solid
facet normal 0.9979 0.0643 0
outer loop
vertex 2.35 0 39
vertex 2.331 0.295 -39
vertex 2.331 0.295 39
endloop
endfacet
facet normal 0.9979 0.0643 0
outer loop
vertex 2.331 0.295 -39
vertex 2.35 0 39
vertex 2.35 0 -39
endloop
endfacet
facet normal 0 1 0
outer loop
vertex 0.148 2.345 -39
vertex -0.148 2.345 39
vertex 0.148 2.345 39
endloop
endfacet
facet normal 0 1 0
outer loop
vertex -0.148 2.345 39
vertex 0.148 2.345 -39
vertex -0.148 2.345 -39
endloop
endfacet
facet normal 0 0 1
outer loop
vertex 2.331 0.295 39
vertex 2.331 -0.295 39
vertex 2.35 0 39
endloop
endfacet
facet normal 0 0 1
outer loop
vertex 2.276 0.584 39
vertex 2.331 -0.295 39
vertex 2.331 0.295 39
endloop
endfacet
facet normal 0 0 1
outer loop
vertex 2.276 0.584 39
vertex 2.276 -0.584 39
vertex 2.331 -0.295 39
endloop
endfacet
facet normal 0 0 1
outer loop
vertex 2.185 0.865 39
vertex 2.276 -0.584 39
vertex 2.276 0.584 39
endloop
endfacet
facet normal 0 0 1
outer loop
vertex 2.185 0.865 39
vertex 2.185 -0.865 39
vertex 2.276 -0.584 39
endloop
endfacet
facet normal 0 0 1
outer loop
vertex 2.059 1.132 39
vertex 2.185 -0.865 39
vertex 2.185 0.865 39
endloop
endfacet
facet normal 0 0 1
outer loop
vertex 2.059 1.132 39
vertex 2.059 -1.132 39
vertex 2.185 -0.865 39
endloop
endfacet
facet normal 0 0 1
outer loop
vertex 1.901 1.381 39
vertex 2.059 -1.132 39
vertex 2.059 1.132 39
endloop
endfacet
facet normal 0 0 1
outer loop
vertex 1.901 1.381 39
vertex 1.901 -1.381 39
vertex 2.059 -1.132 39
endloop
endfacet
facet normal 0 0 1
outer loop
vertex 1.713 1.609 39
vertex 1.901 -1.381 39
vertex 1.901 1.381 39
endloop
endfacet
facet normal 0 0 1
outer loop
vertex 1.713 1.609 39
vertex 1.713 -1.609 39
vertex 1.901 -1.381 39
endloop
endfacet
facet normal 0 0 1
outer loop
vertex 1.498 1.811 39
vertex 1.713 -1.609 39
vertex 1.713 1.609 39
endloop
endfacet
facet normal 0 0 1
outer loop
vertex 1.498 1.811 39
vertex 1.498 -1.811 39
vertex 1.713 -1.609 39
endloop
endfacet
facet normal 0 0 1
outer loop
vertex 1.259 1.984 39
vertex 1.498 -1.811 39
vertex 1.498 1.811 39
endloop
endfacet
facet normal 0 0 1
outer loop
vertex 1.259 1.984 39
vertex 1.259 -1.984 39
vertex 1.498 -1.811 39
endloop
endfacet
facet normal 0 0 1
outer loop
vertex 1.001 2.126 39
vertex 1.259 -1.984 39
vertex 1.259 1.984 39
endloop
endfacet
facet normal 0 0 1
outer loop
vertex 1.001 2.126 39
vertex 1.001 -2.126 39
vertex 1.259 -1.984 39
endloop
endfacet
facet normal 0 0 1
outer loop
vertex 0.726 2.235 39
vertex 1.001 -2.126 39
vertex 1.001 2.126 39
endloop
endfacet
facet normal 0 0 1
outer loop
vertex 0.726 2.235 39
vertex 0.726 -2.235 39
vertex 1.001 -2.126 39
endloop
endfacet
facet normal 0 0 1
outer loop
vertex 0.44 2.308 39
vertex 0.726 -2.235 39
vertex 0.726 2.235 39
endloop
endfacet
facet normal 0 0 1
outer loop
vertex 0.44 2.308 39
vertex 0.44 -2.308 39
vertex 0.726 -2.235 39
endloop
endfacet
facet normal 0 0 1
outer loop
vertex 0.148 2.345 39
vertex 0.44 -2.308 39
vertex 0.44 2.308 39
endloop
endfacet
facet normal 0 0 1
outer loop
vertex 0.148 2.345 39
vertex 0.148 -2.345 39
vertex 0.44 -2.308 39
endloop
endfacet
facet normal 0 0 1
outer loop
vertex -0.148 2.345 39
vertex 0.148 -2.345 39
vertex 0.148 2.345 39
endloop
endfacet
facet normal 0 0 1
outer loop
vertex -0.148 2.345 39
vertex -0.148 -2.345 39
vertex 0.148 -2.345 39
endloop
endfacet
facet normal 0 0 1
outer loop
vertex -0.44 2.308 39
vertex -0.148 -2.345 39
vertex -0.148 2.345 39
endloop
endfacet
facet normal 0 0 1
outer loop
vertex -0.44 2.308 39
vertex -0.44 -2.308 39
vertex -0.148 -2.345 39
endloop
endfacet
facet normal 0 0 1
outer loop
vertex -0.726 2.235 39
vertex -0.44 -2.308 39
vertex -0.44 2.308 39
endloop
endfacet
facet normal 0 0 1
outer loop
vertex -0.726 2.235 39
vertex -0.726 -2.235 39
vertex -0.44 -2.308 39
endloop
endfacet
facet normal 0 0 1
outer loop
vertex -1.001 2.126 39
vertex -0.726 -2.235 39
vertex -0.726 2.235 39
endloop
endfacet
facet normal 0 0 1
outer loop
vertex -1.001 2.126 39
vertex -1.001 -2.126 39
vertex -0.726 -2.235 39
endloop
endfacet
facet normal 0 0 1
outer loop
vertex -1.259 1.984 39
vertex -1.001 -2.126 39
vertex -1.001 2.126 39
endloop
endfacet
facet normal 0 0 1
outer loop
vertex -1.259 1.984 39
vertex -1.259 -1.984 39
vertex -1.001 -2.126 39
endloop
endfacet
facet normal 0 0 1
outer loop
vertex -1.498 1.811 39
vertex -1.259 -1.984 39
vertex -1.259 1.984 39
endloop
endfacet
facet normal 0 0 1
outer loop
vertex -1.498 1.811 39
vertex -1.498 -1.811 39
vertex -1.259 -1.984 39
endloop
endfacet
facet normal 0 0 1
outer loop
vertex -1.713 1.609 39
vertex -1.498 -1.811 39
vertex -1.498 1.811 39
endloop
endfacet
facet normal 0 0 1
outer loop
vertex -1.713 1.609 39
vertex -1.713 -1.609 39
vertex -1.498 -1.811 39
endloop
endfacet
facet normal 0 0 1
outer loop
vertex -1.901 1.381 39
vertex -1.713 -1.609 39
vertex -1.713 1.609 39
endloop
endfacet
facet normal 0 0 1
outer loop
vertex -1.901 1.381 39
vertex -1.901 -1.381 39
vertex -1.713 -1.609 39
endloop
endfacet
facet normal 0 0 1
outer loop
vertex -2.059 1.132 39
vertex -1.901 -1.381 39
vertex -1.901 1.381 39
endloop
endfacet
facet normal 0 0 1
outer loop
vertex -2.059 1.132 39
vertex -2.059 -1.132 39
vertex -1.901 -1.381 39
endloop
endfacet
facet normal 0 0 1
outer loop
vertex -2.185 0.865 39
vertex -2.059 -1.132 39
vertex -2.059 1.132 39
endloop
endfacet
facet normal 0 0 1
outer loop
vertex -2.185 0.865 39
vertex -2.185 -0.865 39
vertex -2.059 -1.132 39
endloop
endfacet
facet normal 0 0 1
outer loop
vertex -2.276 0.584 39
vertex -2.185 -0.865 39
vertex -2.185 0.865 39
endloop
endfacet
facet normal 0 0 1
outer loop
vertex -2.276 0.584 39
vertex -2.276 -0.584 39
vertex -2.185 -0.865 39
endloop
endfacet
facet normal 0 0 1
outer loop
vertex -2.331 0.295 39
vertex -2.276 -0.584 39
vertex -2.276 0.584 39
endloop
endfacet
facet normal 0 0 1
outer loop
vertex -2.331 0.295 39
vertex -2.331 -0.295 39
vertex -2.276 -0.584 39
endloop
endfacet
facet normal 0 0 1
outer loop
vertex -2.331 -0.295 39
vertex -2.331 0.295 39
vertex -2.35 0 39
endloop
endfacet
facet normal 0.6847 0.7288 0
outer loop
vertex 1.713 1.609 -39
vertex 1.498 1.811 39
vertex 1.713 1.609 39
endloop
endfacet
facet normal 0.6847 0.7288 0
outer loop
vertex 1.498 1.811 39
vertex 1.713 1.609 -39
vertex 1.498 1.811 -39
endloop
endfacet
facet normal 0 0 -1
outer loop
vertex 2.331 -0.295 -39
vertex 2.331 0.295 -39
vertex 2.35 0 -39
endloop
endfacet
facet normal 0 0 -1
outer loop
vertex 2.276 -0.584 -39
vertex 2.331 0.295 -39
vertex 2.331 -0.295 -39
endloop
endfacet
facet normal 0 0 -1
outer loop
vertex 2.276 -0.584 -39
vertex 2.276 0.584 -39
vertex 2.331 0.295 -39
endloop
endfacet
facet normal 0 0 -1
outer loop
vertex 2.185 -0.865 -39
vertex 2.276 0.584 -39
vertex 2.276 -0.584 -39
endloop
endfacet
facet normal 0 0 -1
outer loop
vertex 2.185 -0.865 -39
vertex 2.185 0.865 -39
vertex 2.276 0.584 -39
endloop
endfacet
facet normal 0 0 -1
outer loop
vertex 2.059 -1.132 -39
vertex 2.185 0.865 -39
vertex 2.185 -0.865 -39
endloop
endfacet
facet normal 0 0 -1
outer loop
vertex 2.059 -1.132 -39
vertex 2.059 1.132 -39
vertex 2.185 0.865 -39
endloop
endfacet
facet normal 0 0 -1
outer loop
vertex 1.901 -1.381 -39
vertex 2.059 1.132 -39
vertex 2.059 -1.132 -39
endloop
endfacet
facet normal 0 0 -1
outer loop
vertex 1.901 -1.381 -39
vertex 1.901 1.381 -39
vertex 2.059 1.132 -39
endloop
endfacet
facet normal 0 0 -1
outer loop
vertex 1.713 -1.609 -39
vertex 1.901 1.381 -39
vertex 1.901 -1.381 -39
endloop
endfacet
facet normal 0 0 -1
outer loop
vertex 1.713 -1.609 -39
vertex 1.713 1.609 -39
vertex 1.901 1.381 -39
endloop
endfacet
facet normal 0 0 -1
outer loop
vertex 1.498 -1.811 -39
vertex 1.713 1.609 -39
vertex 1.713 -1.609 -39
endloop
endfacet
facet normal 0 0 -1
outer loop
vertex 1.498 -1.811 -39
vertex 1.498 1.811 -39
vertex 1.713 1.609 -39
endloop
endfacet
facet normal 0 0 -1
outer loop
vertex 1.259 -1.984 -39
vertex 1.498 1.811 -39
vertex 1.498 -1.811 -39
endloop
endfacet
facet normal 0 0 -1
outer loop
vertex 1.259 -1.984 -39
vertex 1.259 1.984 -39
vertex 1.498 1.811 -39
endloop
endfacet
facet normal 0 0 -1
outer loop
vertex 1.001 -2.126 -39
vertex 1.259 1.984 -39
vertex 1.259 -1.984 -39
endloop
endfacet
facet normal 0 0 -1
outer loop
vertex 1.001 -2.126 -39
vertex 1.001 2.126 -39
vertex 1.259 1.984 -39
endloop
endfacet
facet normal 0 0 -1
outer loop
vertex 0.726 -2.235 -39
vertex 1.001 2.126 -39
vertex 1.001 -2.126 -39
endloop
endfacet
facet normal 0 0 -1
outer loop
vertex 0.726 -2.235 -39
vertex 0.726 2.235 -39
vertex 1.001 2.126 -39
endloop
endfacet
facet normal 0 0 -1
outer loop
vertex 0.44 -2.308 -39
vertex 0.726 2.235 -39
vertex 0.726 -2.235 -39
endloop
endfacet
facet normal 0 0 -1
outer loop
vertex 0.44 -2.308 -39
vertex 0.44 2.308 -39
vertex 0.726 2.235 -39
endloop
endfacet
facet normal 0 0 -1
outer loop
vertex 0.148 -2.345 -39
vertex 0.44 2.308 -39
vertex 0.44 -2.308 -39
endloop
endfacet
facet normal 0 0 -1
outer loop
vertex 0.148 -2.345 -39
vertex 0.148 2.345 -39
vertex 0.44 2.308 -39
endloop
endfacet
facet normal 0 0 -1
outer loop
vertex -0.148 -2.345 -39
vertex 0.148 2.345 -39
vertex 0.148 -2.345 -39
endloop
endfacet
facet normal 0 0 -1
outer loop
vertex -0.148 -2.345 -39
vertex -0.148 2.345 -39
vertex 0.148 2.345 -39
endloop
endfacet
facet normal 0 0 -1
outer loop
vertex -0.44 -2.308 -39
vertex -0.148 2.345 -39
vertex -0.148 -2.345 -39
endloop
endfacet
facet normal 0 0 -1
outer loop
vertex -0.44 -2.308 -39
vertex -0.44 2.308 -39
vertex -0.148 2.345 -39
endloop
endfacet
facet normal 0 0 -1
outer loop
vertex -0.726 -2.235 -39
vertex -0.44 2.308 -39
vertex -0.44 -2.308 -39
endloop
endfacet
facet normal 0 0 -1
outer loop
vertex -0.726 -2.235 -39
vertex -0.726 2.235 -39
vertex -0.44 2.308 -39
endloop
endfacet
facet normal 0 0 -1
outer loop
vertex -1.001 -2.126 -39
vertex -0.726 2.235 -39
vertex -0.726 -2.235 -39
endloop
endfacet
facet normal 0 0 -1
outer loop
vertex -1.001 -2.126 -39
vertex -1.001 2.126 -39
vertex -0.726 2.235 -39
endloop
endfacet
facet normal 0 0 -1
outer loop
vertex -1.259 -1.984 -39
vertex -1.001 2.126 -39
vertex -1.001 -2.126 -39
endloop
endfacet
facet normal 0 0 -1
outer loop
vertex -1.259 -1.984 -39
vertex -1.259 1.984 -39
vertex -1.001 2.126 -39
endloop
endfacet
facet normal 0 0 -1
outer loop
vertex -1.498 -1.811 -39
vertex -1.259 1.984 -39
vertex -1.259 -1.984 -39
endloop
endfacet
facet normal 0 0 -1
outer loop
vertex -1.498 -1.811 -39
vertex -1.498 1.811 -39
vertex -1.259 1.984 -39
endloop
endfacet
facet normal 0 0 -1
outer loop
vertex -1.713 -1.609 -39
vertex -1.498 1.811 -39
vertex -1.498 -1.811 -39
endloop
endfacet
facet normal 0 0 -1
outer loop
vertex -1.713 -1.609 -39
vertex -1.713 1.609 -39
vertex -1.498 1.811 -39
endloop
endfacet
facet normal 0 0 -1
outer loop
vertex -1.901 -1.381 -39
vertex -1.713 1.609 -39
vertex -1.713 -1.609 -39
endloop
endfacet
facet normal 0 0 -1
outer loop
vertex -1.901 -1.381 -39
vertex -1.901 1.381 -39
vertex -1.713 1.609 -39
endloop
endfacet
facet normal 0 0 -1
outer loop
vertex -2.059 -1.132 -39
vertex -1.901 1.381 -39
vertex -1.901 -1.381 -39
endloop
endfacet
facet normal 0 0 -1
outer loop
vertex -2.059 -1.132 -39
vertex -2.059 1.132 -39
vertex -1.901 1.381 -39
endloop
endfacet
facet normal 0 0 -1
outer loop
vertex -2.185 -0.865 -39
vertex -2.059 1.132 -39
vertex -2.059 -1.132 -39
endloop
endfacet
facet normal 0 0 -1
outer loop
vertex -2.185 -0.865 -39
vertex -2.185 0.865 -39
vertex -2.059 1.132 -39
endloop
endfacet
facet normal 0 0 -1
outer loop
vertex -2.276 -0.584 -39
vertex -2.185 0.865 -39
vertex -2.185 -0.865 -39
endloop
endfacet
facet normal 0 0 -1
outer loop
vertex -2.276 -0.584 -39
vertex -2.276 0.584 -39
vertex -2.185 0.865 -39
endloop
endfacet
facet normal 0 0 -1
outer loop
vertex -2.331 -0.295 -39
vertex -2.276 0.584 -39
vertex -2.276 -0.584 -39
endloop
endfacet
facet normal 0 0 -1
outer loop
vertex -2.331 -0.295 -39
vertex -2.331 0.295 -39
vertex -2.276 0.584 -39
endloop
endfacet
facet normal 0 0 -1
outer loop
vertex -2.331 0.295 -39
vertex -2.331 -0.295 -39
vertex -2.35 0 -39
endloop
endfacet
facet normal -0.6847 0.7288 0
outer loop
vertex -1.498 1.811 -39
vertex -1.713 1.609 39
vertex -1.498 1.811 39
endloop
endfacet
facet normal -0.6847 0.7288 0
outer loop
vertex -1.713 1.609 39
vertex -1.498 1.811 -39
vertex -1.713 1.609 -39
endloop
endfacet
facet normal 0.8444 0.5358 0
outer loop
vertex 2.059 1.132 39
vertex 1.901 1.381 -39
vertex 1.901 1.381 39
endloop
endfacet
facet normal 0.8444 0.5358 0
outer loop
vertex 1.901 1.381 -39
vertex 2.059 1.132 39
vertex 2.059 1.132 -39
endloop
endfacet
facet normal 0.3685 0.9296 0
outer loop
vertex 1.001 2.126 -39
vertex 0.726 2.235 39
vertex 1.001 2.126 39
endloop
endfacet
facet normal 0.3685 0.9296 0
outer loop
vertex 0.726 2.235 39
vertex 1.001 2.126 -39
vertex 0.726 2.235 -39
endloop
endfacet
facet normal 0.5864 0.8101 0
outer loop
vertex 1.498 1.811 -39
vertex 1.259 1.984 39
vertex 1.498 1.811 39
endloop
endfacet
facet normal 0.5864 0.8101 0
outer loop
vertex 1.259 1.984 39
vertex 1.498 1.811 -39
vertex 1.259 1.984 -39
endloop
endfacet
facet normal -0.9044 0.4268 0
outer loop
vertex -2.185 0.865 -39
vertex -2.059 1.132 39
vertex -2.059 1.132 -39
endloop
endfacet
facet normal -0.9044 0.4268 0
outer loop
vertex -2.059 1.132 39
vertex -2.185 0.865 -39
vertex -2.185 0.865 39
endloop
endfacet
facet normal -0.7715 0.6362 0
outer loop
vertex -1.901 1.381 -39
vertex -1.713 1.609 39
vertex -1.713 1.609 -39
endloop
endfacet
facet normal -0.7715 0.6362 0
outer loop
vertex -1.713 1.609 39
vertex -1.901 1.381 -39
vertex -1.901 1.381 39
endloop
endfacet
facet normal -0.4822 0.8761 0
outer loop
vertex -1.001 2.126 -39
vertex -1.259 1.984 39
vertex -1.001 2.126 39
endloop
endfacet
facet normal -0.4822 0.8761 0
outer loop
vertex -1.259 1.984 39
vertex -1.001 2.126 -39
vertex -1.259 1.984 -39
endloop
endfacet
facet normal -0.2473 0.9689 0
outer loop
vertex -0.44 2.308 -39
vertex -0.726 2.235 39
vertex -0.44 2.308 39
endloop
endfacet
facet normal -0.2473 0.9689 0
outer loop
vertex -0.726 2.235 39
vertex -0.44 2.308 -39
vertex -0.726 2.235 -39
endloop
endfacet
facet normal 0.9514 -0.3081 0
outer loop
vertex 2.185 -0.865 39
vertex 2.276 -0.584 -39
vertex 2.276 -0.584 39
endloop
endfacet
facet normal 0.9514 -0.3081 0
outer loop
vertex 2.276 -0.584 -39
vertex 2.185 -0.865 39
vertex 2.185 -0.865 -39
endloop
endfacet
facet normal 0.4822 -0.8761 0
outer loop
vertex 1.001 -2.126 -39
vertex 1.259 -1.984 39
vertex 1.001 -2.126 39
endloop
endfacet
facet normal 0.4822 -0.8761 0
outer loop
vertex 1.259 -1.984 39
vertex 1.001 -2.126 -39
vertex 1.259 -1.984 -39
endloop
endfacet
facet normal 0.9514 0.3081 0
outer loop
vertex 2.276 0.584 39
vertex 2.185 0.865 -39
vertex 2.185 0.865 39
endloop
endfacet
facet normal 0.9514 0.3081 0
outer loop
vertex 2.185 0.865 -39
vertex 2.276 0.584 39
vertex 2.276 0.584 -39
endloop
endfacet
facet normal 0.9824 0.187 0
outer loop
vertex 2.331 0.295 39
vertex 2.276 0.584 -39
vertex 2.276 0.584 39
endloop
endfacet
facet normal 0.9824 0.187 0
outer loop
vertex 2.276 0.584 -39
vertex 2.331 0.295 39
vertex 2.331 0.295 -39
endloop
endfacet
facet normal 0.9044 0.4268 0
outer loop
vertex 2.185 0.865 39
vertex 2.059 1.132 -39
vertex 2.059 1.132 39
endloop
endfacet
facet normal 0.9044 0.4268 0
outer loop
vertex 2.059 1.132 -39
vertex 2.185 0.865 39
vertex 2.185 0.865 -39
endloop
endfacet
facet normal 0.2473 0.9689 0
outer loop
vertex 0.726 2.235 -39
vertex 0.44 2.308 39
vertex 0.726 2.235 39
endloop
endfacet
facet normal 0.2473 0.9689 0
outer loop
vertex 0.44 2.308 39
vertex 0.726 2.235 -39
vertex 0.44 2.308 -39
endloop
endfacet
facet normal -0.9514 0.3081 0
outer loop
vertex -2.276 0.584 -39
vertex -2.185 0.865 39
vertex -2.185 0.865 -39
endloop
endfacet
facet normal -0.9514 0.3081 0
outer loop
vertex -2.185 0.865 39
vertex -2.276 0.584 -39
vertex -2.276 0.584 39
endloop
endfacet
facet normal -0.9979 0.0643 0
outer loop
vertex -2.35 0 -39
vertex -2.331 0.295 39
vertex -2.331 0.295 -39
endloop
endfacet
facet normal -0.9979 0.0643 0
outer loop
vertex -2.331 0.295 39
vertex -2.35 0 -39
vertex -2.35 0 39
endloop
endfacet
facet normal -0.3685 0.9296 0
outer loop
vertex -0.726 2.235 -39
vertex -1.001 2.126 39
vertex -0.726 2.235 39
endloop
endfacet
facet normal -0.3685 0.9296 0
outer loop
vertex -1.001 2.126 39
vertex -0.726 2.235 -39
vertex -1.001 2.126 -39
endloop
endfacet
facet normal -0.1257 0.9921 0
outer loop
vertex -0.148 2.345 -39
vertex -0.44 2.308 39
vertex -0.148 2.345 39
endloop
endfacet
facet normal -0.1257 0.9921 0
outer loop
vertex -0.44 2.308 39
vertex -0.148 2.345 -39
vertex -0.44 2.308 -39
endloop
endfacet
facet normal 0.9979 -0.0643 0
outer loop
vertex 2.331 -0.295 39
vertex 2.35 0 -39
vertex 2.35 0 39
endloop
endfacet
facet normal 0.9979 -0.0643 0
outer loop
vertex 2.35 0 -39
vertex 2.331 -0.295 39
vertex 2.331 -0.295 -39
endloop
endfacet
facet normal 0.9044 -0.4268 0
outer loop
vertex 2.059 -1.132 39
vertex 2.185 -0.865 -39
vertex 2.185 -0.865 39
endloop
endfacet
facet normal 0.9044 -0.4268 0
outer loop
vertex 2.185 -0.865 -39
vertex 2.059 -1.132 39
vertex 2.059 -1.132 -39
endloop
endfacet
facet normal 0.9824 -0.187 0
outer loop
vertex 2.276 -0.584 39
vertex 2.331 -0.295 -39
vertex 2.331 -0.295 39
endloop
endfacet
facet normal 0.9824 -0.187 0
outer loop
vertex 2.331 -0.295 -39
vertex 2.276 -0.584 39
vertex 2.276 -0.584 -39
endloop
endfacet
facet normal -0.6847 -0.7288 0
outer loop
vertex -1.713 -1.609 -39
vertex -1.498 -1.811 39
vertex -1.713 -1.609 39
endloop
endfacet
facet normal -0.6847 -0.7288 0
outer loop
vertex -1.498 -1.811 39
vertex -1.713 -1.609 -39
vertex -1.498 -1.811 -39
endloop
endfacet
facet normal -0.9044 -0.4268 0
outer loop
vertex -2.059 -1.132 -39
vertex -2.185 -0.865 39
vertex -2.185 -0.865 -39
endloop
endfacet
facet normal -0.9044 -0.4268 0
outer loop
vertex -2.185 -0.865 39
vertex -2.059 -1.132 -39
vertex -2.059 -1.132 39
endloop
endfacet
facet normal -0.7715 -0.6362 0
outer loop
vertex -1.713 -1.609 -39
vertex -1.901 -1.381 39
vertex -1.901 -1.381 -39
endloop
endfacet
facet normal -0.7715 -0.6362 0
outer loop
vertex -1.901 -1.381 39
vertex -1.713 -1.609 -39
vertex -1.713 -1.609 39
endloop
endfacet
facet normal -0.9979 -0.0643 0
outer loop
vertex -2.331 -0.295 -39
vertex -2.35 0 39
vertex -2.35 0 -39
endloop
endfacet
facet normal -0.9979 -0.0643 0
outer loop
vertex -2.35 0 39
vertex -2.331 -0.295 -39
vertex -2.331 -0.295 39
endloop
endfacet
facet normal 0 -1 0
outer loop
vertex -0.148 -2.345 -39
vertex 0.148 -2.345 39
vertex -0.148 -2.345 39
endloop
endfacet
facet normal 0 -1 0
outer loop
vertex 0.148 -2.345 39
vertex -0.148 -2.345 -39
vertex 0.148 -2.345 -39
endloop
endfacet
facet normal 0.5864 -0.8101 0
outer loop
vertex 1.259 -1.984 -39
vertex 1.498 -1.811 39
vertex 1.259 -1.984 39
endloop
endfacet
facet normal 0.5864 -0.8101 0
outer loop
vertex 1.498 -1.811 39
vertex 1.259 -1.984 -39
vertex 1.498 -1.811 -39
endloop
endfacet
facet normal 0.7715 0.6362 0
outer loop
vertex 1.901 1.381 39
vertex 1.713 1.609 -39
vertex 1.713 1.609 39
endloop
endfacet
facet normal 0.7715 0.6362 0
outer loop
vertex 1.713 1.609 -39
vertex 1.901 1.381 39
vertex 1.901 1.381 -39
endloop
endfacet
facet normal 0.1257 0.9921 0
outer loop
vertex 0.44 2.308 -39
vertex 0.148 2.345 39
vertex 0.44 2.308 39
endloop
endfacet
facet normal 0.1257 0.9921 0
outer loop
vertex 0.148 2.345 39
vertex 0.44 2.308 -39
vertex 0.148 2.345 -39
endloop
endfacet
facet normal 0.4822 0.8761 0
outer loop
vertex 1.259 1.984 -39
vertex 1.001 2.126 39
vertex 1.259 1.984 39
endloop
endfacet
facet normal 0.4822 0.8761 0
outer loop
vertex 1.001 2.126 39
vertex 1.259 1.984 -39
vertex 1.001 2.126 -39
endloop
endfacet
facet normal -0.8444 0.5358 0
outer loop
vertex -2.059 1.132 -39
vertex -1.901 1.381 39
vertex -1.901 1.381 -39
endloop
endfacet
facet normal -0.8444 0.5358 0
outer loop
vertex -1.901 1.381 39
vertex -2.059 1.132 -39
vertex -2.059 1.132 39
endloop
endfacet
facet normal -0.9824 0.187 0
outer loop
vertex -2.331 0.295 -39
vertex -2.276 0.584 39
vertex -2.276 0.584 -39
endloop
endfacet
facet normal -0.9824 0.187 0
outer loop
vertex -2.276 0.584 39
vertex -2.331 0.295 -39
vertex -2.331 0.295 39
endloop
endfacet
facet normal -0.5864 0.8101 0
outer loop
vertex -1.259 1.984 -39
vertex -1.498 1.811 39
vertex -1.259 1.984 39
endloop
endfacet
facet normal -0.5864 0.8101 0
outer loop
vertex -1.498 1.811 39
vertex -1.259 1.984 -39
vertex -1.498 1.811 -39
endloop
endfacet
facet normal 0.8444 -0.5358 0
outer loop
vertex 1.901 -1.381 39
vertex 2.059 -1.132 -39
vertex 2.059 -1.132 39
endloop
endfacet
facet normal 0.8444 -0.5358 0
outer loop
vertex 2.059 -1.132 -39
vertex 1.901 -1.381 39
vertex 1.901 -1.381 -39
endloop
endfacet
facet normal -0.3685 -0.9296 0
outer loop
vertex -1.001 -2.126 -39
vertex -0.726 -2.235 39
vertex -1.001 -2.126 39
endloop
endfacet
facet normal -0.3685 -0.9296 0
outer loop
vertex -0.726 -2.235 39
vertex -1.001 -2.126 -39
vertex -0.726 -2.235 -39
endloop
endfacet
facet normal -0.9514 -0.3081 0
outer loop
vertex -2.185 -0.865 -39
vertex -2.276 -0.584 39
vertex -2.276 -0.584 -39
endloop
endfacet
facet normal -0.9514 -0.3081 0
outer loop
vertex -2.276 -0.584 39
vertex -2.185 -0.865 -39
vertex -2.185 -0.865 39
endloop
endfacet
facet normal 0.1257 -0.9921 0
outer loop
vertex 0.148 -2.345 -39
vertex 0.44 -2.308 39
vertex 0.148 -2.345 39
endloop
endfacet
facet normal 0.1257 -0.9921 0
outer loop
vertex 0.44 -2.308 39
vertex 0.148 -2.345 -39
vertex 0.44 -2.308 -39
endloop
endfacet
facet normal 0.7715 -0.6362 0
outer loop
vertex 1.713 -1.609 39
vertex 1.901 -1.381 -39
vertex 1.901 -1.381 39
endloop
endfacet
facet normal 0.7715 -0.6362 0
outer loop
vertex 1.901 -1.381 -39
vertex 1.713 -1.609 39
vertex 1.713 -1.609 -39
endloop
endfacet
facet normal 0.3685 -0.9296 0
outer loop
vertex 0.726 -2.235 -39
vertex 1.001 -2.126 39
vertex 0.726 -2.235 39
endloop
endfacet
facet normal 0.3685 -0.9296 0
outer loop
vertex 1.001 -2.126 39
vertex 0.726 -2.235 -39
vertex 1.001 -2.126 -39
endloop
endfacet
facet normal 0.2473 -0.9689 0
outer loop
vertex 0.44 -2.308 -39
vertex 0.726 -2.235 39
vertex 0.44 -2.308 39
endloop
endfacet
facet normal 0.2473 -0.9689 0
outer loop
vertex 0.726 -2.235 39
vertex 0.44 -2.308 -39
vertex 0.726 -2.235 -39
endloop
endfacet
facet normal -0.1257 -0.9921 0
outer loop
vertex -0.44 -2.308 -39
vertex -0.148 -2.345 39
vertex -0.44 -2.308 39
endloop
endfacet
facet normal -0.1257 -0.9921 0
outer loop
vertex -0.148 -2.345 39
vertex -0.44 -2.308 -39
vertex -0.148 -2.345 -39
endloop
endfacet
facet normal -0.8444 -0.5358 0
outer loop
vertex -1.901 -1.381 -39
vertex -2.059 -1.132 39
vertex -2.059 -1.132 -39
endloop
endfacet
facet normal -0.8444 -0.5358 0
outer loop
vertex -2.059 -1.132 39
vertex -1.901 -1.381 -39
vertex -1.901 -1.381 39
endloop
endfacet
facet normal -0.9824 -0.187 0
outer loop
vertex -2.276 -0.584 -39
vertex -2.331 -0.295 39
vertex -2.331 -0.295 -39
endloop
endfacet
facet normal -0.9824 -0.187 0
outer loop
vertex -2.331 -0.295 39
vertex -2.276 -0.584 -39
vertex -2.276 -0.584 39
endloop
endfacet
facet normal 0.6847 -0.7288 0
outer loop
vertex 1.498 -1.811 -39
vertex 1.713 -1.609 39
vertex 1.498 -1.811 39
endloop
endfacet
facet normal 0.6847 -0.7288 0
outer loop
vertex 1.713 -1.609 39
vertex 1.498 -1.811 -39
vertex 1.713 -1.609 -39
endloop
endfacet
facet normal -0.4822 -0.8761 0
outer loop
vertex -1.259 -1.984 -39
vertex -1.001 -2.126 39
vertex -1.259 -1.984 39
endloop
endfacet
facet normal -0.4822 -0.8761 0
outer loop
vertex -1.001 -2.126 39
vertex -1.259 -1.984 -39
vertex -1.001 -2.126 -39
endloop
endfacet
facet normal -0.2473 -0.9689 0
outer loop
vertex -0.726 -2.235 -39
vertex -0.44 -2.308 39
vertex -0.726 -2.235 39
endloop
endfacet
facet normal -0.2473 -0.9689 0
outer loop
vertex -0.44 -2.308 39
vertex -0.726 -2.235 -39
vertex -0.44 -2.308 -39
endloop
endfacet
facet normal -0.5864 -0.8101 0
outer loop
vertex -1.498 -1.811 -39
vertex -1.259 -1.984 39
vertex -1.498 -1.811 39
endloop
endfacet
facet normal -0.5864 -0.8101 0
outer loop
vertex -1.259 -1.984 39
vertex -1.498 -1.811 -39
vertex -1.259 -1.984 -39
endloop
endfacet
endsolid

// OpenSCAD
$fn = 50;


difference() {
	union() {
		translate(v = [0, 0, -39.0000000000]) {
			cylinder(h = 78, r = 2.3500000000);
		}
	}
	union() {
		translate(v = [0, 0, -100.0000000000]) {
			cylinder(h = 200, r = 0);
		}
	}
}
